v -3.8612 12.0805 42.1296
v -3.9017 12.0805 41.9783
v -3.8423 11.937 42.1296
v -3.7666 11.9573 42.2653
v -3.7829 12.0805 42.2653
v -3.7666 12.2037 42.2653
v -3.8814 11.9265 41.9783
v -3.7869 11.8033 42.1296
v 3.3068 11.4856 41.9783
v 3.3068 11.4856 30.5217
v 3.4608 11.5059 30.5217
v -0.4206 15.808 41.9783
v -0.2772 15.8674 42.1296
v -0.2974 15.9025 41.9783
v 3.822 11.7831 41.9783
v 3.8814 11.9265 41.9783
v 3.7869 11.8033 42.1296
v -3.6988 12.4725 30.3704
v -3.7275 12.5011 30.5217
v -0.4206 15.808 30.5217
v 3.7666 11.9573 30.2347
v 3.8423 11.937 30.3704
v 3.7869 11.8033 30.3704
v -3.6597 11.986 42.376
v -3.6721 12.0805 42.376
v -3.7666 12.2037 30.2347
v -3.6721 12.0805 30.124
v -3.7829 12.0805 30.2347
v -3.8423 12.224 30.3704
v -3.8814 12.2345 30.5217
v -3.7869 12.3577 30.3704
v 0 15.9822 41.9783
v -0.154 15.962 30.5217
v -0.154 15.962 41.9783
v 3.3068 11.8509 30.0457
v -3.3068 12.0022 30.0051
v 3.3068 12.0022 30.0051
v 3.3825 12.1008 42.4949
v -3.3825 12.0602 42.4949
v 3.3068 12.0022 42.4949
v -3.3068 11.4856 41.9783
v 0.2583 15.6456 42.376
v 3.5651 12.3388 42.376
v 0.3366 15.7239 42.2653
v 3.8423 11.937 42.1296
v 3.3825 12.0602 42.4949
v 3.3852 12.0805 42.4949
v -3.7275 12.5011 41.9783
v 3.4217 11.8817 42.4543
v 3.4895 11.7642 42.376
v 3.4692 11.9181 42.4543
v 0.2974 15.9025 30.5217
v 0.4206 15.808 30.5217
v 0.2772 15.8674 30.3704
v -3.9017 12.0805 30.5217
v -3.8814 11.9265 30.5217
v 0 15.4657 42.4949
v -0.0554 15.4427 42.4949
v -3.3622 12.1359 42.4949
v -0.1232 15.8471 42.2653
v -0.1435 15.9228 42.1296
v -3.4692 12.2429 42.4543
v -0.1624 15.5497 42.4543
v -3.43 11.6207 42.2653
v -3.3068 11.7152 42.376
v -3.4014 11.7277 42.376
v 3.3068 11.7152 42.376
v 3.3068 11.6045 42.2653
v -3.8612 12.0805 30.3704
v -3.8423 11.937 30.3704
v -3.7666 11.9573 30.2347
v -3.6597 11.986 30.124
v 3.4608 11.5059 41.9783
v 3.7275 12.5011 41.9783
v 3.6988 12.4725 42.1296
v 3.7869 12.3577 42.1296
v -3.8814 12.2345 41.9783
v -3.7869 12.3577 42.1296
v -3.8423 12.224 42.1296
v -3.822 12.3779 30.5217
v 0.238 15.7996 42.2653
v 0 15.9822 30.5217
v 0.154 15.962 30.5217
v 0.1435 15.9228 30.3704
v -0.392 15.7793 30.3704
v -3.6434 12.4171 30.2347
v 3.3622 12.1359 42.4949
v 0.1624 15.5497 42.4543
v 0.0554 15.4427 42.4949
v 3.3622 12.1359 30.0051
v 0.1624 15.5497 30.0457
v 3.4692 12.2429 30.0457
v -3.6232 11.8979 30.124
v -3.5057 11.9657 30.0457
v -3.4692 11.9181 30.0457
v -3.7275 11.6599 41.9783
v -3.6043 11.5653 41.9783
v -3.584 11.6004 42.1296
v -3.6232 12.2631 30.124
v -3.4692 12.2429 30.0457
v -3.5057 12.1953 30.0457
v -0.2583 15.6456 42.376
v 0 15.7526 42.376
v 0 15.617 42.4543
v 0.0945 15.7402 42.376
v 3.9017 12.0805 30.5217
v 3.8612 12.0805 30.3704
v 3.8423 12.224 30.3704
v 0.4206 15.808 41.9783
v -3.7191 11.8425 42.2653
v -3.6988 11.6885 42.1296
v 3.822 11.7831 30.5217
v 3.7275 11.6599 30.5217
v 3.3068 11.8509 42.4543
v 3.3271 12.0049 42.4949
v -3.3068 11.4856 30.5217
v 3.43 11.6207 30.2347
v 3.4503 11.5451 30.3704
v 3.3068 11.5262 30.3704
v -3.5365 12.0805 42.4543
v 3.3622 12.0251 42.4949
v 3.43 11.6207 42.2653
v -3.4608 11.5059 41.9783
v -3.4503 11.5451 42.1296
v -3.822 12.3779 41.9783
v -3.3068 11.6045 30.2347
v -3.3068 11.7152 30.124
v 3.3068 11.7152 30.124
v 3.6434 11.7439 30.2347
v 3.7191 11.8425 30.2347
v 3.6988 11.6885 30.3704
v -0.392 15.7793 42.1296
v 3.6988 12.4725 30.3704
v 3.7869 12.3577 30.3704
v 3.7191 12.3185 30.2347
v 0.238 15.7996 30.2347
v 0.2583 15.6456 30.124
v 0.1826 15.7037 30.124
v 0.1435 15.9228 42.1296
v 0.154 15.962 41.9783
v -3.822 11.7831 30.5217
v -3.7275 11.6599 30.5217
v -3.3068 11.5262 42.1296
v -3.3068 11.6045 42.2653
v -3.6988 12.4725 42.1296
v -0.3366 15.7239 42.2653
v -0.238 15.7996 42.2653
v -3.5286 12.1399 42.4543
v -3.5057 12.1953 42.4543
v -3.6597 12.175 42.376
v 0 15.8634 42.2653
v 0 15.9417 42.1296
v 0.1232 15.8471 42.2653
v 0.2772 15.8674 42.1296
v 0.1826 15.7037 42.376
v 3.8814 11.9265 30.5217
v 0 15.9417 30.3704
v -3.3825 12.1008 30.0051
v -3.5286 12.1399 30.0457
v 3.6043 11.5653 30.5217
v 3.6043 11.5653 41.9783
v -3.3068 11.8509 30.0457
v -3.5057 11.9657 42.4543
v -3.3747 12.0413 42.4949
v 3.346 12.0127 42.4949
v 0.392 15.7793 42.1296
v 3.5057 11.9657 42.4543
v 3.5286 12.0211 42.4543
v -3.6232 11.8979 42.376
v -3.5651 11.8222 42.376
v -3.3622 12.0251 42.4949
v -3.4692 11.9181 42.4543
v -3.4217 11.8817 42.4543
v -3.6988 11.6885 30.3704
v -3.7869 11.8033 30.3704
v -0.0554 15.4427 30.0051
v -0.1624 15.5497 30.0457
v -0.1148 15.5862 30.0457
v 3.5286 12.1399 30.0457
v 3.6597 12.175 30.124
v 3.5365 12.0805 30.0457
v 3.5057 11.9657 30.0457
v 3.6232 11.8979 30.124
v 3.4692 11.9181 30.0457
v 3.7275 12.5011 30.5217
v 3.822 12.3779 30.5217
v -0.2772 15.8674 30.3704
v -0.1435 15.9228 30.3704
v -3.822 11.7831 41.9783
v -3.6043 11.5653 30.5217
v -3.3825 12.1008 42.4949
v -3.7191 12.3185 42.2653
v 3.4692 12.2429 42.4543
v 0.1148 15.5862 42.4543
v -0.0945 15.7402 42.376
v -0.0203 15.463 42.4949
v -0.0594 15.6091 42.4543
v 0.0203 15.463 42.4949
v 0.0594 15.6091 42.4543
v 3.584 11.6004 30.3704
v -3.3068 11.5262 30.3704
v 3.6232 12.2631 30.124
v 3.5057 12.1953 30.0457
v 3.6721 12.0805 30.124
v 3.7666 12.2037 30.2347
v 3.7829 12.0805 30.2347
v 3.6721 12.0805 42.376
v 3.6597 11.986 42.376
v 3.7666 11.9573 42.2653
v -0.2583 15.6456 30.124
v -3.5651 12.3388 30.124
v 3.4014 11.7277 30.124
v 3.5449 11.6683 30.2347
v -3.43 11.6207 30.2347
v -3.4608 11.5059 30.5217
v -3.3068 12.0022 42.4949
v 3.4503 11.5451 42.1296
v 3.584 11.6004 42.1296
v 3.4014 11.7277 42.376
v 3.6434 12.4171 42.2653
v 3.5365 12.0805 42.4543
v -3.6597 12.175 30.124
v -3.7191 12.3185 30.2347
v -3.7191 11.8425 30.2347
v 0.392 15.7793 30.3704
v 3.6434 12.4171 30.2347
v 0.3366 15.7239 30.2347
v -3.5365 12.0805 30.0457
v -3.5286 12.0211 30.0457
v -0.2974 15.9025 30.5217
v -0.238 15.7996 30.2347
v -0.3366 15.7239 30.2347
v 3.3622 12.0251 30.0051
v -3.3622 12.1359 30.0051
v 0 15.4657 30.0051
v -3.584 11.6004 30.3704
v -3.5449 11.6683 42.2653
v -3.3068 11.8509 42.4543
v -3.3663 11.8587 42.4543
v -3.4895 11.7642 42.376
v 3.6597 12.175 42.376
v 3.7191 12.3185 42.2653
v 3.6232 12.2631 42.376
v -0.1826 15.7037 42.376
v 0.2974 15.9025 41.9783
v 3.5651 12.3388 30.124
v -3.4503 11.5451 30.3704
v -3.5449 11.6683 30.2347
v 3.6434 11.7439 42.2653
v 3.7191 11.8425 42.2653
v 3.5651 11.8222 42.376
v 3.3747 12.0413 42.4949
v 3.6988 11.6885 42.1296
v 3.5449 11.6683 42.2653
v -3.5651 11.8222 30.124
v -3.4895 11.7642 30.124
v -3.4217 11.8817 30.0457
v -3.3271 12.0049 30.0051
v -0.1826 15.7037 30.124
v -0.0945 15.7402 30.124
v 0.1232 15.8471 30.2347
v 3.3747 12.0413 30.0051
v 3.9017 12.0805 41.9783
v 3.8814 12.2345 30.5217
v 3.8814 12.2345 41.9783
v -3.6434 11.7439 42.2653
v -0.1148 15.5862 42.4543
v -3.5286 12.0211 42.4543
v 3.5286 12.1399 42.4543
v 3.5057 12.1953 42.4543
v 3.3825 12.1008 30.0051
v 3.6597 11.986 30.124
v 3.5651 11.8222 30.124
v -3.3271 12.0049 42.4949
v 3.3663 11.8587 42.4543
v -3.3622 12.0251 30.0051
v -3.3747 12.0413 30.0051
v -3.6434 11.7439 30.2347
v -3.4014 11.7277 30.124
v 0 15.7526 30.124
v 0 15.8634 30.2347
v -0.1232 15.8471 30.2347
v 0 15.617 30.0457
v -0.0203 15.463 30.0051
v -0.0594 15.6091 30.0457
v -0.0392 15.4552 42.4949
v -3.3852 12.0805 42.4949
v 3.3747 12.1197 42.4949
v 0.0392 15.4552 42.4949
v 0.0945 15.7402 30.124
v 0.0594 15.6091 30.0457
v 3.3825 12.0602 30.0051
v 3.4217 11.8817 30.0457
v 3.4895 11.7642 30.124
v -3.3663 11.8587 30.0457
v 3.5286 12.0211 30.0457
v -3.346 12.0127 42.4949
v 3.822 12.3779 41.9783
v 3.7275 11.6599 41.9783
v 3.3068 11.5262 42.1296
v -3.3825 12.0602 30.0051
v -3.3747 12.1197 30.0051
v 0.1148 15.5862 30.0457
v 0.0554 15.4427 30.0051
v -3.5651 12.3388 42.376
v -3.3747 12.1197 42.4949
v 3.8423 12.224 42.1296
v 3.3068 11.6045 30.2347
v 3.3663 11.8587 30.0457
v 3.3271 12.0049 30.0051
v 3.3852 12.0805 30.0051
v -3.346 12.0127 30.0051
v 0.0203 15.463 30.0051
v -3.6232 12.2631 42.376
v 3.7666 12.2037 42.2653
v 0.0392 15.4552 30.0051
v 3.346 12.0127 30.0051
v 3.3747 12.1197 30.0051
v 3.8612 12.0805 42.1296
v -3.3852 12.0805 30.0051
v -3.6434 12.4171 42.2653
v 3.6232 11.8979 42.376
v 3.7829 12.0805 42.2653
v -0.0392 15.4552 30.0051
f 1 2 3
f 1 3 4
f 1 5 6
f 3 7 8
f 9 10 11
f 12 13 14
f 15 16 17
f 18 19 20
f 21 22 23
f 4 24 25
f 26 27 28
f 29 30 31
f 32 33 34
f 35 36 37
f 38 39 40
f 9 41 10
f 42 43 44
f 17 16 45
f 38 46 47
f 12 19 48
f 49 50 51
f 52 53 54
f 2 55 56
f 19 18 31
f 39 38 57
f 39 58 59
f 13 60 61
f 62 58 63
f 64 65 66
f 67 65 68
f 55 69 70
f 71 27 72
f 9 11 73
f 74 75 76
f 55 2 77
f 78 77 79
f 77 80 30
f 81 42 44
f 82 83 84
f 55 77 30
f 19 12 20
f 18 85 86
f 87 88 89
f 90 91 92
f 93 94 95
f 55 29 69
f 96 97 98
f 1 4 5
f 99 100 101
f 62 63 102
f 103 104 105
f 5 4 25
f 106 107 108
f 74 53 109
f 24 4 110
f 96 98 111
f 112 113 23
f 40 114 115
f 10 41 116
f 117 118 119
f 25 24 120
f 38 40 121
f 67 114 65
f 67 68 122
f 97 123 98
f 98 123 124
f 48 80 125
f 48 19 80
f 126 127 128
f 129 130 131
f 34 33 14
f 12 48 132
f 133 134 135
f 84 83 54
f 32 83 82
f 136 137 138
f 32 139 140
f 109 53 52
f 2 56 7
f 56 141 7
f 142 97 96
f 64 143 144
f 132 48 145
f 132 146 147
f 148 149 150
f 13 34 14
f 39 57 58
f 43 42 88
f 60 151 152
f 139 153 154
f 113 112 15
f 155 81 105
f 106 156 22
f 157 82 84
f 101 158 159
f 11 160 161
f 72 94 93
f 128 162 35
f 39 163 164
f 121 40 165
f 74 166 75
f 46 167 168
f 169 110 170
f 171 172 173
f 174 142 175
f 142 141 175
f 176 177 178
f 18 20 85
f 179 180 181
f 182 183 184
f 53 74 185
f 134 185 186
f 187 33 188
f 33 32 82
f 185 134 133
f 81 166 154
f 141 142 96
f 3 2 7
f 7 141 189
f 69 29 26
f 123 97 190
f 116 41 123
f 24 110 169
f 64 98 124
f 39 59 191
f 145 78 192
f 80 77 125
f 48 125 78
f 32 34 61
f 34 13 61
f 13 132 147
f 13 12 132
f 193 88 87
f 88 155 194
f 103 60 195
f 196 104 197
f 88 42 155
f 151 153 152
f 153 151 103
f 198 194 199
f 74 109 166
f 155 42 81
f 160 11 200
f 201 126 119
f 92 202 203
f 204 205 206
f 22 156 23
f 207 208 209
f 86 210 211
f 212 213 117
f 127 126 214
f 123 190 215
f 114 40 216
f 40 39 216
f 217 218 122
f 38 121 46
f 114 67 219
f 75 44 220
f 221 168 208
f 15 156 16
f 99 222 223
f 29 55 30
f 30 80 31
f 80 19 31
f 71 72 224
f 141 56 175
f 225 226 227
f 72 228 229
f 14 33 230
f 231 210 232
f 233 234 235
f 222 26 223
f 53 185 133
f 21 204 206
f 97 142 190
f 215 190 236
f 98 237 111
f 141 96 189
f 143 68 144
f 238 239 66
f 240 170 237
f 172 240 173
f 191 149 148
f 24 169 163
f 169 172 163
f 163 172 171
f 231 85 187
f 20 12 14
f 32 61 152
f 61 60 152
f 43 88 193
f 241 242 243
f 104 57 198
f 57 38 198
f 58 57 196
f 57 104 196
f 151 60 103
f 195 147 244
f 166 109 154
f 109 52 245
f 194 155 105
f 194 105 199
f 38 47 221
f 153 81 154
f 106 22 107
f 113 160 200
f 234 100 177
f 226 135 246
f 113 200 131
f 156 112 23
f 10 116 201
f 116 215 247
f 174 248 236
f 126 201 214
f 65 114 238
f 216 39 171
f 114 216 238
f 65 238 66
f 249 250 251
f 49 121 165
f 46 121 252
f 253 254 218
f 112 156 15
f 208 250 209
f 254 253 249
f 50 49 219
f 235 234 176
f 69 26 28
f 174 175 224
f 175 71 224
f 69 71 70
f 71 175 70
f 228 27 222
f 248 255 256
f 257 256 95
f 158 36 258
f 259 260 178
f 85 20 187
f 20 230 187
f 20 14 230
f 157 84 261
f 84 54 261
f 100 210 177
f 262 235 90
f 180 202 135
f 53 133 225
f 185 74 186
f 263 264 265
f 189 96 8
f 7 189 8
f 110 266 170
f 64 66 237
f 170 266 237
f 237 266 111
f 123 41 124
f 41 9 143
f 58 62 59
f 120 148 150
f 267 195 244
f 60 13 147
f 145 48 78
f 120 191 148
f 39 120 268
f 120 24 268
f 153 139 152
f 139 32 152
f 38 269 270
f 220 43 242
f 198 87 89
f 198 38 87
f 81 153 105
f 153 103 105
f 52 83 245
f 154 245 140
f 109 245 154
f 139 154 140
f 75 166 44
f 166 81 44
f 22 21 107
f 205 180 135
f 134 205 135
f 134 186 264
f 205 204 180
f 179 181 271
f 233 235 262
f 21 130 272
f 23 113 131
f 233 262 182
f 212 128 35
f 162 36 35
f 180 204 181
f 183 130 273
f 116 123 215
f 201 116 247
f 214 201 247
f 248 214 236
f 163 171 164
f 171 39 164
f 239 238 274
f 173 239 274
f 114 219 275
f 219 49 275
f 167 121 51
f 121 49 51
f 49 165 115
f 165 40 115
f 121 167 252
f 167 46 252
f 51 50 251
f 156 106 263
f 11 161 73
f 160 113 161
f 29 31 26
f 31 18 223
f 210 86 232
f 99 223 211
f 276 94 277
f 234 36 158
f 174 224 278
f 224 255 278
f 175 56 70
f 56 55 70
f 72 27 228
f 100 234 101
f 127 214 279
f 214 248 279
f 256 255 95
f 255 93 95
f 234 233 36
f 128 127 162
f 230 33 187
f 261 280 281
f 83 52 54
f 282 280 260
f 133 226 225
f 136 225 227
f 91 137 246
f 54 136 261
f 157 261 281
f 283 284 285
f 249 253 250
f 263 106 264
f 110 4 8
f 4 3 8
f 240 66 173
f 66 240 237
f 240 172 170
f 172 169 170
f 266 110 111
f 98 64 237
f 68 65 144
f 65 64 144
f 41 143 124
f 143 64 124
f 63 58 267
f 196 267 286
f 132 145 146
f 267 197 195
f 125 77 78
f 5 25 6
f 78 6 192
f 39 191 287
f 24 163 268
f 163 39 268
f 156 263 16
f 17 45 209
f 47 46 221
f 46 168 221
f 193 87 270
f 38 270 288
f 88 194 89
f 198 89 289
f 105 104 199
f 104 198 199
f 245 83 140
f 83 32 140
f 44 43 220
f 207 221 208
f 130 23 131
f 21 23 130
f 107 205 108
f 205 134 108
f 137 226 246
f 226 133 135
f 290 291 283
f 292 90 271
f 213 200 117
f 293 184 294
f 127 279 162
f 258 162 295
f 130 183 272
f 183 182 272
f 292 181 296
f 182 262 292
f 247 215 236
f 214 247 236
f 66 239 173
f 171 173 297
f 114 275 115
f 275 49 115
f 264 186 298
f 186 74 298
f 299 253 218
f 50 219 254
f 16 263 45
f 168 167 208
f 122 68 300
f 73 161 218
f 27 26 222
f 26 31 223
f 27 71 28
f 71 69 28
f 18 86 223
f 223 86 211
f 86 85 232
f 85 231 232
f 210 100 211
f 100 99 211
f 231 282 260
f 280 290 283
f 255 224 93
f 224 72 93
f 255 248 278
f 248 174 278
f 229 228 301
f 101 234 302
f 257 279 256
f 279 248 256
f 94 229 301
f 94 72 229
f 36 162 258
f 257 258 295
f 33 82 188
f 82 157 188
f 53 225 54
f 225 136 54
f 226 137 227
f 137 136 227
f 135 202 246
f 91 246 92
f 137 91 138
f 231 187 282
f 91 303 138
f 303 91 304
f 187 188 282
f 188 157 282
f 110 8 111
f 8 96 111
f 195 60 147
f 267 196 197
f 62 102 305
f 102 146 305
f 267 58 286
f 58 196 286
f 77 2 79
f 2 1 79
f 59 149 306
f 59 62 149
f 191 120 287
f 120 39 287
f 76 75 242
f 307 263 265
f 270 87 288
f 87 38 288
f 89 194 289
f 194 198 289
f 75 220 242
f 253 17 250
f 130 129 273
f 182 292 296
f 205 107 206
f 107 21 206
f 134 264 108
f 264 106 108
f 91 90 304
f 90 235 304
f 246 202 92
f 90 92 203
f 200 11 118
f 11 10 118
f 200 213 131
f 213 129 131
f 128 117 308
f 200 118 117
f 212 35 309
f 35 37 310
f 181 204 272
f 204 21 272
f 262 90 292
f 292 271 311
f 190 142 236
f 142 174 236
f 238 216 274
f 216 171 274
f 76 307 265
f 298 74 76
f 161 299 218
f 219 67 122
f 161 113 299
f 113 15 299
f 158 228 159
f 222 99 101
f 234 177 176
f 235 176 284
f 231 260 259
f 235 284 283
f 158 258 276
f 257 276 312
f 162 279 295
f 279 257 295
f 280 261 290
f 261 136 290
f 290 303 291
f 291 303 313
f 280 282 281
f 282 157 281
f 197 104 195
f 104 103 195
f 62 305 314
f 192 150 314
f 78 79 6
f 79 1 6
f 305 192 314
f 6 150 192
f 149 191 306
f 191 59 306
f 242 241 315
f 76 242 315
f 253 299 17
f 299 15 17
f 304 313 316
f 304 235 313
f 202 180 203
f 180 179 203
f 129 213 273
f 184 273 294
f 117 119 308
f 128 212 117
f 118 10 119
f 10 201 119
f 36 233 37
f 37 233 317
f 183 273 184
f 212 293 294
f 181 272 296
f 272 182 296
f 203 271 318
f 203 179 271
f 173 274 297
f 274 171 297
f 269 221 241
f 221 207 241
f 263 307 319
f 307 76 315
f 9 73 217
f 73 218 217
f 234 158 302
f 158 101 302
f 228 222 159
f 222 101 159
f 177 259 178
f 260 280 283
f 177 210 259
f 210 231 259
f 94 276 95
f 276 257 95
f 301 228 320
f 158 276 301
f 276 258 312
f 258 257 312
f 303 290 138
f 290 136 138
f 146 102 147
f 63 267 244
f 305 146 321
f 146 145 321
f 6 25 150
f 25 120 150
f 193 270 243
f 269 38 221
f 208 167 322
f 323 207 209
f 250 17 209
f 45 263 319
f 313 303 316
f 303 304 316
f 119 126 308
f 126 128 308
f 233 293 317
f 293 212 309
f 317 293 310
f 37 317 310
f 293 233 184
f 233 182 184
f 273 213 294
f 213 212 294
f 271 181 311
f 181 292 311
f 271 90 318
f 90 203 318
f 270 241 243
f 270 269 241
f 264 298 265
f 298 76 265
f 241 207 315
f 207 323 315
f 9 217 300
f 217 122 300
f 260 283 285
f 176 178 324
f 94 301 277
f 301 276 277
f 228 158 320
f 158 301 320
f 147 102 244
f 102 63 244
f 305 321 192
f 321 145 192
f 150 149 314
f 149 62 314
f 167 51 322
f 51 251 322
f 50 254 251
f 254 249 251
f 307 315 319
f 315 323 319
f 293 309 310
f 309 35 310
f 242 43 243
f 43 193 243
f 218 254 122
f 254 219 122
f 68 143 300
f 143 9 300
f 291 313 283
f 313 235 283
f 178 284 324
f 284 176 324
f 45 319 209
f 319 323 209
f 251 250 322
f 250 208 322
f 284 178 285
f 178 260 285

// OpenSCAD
// file: def.scad
round_radius = 0.6;
sticker_margin = 1.2;
sticker_round_radius = 0.4;
cube_size = 60;
disk_height = 12.5;
disk_radius = cube_size / 2;
base_size = cube_size / 2 / sqrt(10 + 7 * sqrt(2));
cut1_dis = base_size * (1 + sqrt(2) / 2);
cut2_dis = cube_size / 2;
inf = cube_size * 10;

module _cube() {
    cube([cube_size - round_radius * 2, cube_size - round_radius * 2, cube_size - round_radius * 2], center = true);
}

module _disk() {
    translate([0, 0, cube_size / 2 + disk_height / 2])
        cylinder(r = disk_radius - round_radius, h = disk_height - round_radius * 2, center = true, $fn = 96);
}

module _int_cut1() {
    translate([-inf, -inf, cut1_dis + round_radius])
        cube([inf * 2, inf * 2, inf]);
}

module _dif_cut1() {
    translate([-inf, -inf, cut1_dis - round_radius])
        cube([inf * 2, inf * 2, inf]);
}

module _sticker_int_cut1() {
    translate([-inf, -inf, cut1_dis + sticker_margin])
        cube([inf * 2, inf * 2, inf]);
}

module _sticker_dif_cut1() {
    translate([-inf, -inf, cut1_dis - sticker_margin])
        cube([inf * 2, inf * 2, inf]);
}

module _int_cut2() {
    translate([-inf, -inf, cut2_dis + round_radius])
        cube([inf * 2, inf * 2, inf]);
}

module _dif_cut2() {
    translate([-inf, -inf, cut2_dis - round_radius])
        cube([inf * 2, inf * 2, inf]);
}

module _sticker_int_cut2() {
    translate([-inf, -inf, cut2_dis + sticker_margin])
        cube([inf * 2, inf * 2, inf]);
}

module _sticker_dif_cut2() {
    translate([-inf, -inf, cut2_dis - sticker_margin])
        cube([inf * 2, inf * 2, inf]);
}

module _sticker_cube() {
    translate([-cube_size / 2 + sticker_margin, -cube_size / 2 + sticker_margin, cube_size / 2 - 0.05])
        cube([cube_size - sticker_margin * 2, cube_size - sticker_margin * 2, 0.1]);
}

module _sticker_disk() {
    translate([0, 0, cube_size / 2 + disk_height - 0.05])
        cylinder(r = disk_radius - sticker_margin, h = 0.1, center = true, $fn = 96);
}
// main file
include <def.scad>

module block_12b() {
    minkowski() {
        difference() {
            intersection() {
                _disk();
                rotate([-90, 0, 0])
                    _int_cut1();
            }
            for (deg = [45, -45])
                rotate([-90, 0, deg])
                    _dif_cut1();
        }
        sphere(r = round_radius, $fn = 24);
    }
}

block_12b();
